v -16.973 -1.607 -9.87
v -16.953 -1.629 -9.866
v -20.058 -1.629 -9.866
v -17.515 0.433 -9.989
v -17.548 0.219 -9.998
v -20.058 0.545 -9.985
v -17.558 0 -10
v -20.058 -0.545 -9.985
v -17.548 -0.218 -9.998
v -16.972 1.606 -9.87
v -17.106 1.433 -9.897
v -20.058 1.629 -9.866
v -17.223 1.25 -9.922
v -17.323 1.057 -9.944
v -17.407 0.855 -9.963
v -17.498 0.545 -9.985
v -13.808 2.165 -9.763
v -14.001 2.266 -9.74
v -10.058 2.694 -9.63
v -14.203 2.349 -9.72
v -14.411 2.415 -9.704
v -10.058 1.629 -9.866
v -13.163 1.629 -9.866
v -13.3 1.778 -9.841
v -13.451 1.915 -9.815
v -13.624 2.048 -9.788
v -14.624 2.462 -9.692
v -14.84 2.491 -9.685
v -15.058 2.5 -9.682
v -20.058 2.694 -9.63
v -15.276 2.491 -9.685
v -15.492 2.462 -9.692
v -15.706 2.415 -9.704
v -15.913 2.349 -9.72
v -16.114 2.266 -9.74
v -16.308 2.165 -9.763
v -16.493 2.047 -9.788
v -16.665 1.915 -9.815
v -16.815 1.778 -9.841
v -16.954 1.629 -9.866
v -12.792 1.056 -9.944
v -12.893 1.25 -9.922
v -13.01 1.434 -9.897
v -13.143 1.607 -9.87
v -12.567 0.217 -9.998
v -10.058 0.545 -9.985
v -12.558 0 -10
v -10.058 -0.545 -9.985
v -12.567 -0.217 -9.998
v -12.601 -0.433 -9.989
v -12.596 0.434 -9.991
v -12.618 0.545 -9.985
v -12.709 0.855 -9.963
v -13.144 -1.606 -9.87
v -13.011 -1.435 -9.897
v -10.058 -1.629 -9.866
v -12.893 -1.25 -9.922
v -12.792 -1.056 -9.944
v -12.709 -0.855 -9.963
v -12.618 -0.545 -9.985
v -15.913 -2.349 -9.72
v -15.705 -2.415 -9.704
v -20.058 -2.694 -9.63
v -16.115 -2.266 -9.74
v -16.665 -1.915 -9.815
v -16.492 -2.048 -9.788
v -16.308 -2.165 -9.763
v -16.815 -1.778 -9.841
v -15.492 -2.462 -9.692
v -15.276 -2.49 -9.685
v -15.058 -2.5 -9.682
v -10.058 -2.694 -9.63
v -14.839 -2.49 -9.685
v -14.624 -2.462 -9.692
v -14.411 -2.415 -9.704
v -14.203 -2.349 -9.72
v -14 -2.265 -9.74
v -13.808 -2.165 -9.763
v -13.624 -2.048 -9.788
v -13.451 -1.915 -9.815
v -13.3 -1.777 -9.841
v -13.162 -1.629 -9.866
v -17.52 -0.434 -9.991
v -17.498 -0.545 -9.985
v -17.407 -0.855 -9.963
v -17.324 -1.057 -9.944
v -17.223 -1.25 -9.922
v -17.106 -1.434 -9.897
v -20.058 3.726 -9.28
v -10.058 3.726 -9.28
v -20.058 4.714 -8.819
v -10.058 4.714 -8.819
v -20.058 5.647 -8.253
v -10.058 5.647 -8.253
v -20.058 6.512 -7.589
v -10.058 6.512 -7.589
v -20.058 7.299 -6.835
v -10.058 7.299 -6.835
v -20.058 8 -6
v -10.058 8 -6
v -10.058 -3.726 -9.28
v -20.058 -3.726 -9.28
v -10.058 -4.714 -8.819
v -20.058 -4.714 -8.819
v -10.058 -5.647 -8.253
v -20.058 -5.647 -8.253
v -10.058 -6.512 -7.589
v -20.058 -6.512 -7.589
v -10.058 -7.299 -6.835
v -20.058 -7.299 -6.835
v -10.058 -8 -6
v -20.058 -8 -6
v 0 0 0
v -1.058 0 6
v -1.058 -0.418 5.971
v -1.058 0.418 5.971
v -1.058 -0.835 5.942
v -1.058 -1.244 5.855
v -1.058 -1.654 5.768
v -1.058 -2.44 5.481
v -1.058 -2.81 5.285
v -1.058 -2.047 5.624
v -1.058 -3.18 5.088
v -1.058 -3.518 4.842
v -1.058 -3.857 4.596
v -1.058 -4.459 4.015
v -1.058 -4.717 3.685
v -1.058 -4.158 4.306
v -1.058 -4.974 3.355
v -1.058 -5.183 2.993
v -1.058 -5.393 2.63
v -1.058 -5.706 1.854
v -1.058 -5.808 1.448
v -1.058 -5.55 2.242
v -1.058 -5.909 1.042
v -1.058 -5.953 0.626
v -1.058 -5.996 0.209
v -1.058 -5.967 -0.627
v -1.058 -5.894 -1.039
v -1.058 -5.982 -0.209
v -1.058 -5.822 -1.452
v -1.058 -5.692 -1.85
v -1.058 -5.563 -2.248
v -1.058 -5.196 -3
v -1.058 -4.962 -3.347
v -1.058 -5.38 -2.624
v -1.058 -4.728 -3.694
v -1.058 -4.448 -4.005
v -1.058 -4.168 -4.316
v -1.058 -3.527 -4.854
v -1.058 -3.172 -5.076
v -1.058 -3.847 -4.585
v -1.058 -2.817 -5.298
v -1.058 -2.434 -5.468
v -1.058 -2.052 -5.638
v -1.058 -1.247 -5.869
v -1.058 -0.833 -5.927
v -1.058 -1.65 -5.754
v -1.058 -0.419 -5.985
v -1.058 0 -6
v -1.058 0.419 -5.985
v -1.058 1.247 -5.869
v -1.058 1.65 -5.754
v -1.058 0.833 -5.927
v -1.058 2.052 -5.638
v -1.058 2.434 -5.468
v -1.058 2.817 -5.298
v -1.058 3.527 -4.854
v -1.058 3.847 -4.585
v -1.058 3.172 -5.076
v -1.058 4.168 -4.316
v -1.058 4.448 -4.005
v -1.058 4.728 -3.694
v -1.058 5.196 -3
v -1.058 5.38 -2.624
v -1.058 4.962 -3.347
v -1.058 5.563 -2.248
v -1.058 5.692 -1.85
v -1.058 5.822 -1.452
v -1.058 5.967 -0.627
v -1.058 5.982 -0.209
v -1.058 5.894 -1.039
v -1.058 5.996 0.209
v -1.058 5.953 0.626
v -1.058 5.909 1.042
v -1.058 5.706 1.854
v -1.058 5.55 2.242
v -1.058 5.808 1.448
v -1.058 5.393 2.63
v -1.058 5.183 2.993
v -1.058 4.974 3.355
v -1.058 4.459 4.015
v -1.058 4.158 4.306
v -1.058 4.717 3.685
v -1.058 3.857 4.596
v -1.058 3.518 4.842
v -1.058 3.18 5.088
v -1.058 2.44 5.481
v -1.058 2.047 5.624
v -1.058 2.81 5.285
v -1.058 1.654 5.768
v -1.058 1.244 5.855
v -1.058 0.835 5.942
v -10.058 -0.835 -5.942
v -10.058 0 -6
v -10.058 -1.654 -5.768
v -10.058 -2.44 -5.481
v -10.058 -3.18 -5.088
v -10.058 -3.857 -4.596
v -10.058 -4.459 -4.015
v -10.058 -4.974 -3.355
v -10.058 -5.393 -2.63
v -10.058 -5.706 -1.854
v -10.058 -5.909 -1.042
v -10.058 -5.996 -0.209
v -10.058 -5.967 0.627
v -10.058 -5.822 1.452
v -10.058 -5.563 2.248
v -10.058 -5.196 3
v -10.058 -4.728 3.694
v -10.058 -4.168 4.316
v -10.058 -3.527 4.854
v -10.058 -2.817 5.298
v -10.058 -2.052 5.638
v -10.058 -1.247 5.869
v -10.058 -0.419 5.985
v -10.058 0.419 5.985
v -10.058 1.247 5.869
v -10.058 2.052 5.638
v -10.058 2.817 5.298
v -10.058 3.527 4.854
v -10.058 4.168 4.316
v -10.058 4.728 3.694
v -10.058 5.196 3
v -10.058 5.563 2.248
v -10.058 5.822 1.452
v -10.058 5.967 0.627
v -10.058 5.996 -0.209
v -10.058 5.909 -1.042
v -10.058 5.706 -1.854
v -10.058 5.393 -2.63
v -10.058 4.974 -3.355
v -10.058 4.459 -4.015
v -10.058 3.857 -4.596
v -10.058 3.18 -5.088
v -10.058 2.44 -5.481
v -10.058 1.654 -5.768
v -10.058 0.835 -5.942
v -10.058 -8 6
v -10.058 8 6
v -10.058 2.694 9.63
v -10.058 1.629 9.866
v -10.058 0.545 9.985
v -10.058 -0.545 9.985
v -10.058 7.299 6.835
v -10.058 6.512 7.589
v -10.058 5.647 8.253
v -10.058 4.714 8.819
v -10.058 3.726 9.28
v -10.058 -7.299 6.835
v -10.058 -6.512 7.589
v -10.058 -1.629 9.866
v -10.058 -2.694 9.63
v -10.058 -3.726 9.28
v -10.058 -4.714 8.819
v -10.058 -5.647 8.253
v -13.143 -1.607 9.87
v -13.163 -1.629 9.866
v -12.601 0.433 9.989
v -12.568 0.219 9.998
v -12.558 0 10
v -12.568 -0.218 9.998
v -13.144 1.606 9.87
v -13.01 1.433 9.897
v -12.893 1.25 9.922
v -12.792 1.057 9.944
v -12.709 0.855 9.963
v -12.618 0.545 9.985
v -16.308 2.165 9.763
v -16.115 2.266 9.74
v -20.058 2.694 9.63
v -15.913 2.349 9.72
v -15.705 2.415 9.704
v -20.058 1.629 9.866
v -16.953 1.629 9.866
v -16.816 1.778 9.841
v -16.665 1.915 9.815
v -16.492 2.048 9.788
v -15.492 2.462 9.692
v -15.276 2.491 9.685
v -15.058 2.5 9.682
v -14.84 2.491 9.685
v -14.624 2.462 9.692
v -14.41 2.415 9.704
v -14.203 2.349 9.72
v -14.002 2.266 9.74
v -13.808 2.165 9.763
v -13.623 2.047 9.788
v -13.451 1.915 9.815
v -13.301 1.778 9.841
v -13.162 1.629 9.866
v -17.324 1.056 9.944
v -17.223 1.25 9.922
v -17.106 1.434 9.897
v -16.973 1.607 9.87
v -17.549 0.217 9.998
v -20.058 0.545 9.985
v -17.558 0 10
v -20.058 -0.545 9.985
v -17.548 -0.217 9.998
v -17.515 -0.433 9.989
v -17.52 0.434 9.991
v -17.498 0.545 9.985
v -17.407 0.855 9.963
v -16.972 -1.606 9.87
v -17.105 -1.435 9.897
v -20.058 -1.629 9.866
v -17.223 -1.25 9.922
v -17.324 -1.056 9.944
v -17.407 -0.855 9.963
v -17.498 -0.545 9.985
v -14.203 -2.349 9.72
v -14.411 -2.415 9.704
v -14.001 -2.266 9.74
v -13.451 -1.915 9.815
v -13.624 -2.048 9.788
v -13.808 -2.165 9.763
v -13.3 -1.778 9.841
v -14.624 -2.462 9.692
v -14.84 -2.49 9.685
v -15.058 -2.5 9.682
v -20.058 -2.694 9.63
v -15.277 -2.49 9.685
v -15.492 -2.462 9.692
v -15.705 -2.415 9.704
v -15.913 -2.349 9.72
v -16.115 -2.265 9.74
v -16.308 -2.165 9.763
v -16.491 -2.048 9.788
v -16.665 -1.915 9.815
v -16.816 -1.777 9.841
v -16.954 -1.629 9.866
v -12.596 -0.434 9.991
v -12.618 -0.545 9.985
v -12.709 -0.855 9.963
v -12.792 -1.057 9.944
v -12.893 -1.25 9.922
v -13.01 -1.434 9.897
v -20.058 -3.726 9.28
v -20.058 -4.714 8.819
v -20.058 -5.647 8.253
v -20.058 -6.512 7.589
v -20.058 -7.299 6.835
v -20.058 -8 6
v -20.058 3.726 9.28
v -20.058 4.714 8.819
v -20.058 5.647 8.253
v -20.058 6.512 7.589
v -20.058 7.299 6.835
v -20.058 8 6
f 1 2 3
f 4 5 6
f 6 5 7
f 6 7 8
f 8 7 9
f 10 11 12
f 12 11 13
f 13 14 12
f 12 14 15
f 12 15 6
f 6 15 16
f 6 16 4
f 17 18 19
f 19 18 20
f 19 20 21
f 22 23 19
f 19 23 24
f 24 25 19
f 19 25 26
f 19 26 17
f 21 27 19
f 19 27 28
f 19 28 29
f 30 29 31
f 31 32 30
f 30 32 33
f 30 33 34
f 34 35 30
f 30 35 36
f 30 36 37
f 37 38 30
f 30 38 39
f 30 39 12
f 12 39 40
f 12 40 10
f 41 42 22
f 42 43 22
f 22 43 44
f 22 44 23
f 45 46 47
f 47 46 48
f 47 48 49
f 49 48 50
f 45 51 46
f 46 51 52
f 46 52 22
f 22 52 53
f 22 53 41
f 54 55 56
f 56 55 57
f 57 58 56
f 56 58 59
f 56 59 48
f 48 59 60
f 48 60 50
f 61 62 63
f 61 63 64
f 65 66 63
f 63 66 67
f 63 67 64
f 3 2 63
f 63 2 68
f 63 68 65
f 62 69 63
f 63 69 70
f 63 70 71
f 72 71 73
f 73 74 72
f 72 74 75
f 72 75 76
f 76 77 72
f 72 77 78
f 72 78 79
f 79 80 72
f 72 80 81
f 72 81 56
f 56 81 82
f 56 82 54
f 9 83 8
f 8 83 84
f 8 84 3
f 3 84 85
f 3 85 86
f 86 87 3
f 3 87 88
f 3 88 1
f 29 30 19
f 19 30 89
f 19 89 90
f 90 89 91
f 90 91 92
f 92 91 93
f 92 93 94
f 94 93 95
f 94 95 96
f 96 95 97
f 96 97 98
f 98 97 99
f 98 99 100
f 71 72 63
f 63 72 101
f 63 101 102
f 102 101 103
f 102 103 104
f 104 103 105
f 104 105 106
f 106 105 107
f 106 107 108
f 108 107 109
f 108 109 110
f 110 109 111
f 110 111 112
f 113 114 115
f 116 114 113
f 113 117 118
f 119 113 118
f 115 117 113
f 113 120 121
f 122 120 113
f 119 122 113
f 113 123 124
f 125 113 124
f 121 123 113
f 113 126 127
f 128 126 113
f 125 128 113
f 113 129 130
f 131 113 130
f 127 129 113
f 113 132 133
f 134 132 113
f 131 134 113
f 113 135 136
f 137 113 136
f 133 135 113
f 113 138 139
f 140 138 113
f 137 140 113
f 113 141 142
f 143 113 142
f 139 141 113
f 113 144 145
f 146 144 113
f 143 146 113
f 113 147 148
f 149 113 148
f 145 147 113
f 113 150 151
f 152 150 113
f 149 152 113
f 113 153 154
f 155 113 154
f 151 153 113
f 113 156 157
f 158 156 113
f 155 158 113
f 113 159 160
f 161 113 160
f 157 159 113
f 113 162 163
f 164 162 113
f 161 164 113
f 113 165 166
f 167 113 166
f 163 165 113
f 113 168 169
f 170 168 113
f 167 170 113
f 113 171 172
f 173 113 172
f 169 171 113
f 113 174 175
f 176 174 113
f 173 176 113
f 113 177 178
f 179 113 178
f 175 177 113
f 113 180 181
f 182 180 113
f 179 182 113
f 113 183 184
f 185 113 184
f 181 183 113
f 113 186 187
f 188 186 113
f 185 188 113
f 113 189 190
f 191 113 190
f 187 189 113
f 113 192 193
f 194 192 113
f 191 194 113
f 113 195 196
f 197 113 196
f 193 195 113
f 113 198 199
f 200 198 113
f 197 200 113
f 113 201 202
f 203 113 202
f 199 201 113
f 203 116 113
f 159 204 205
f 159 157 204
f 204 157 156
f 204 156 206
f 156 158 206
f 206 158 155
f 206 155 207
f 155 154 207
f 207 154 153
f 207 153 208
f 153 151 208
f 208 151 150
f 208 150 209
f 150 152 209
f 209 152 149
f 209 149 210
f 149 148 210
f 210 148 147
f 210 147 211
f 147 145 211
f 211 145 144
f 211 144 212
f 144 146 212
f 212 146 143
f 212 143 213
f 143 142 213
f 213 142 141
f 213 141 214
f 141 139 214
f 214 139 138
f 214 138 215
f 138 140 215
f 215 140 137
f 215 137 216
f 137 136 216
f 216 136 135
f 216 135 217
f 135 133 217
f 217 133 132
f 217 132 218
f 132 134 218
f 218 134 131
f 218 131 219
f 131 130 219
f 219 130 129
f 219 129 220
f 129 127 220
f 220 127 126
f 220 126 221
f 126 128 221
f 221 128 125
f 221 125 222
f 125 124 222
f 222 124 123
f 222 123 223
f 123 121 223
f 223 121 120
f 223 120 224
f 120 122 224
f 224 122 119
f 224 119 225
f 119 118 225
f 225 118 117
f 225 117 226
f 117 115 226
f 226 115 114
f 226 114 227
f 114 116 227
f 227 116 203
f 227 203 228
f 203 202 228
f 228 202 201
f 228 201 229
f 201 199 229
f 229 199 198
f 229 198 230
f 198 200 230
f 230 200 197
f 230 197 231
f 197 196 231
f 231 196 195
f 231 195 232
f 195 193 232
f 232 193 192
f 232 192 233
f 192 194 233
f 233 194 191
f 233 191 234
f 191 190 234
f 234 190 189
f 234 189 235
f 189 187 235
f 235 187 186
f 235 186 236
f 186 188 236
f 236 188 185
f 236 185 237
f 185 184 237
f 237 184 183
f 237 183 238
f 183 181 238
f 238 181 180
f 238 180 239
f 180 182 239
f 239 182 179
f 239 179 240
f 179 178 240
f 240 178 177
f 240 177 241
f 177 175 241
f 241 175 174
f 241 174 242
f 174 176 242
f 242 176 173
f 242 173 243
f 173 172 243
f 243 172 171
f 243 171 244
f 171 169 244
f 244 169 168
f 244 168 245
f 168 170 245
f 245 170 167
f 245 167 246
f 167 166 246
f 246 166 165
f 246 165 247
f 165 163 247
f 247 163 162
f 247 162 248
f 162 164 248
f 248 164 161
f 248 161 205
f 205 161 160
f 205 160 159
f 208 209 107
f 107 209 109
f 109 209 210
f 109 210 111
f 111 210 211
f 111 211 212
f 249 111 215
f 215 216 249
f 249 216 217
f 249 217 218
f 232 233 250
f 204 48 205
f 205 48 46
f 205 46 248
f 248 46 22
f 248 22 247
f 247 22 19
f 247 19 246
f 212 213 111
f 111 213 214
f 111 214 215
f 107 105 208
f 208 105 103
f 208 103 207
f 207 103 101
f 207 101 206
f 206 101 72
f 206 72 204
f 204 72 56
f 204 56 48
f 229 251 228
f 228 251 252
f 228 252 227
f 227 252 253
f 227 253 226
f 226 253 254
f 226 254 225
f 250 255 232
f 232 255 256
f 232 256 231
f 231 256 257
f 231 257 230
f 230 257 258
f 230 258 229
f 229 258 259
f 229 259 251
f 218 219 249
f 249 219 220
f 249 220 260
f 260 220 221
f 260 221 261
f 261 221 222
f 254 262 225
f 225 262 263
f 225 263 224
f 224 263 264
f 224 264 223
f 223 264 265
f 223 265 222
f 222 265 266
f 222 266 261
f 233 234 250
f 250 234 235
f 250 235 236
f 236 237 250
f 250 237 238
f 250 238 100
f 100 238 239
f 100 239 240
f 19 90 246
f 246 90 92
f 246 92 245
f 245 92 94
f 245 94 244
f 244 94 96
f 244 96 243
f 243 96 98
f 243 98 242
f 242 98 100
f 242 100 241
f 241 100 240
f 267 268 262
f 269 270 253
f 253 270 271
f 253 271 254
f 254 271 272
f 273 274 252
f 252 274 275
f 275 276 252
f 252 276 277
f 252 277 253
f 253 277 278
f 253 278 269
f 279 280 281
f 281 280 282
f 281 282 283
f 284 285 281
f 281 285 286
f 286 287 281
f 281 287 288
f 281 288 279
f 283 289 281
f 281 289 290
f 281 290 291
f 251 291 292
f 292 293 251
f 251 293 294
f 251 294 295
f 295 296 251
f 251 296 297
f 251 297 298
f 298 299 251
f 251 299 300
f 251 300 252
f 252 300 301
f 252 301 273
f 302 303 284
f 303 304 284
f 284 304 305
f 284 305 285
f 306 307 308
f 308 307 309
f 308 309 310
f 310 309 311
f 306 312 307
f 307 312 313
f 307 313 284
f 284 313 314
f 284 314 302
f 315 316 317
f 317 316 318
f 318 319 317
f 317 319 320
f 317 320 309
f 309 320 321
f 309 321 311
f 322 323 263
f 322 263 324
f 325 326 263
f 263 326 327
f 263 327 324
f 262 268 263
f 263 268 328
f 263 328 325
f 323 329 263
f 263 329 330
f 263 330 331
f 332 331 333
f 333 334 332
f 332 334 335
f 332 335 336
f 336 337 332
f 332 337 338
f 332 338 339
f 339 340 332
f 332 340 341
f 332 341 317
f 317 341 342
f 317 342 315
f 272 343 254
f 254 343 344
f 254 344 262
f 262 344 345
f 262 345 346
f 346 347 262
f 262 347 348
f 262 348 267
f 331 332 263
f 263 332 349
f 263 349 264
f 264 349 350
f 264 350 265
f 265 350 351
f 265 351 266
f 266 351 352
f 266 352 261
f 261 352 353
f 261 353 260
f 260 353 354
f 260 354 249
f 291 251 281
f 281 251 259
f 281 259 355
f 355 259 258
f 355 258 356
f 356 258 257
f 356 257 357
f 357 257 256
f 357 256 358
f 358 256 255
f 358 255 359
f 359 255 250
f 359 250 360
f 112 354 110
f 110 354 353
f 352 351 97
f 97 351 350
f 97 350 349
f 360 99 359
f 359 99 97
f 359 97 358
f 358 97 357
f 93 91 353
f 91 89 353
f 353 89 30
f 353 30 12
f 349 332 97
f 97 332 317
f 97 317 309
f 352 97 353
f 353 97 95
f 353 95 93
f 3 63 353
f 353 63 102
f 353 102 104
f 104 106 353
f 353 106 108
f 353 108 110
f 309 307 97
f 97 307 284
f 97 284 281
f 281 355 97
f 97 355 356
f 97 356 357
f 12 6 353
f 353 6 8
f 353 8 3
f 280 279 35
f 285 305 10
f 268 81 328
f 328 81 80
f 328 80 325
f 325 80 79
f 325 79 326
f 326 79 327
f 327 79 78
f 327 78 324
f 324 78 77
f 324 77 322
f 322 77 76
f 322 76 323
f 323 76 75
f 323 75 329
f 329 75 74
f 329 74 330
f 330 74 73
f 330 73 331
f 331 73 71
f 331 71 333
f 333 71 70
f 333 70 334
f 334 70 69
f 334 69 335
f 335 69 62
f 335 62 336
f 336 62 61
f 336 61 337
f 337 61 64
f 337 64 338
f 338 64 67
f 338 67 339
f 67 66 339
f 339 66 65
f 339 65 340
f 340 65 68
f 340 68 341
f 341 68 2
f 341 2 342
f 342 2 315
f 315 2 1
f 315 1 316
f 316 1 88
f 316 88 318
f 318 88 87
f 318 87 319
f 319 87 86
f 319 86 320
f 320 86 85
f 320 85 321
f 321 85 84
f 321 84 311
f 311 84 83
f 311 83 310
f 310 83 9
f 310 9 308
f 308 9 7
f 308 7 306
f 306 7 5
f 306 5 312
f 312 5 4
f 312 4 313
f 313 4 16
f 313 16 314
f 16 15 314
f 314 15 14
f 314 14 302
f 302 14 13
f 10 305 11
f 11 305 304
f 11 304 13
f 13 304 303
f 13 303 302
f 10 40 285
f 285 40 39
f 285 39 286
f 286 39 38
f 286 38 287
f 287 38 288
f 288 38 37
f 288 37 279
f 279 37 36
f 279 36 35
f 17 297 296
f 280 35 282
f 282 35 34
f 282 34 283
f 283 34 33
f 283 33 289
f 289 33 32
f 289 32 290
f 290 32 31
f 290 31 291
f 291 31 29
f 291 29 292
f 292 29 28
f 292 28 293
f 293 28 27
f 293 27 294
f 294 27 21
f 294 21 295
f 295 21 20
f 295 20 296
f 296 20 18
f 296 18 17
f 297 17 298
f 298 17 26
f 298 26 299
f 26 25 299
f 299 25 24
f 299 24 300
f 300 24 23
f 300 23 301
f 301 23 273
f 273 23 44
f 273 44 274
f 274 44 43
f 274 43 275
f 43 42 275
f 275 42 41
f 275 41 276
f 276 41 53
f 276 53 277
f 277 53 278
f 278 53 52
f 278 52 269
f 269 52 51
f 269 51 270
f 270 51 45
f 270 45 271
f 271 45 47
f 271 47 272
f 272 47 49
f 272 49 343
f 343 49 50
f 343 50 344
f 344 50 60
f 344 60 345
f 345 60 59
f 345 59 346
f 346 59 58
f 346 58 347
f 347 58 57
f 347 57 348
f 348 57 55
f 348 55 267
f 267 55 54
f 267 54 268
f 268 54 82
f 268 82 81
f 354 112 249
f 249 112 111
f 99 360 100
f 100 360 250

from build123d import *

# Parameters (mm, degrees)
SKETCH_2_R          = 2.5
SKETCH_2_W          = 13.733275584
SKETCH_2_H          = 7.68132945
CUT_EXTRUDE_1_DEPTH = 15


with BuildPart() as part:
    # Эскиз1 → Повернуть1 (revolve)
    with BuildSketch(Plane.XY, mode=Mode.PRIVATE) as revolve_1_sk:
        Polygon((0, 0), (-1.057961884, 6), (-10.057961884, 6), (-10.057961884, 10), (-20.057961884, 10), (-20.057961884, 0), align=None)
    revolve(revolve_1_sk.sketch.rotate(Axis((0, 0, 0), (-1, 0, 0)), 90), axis=Axis((0, 0, 0), (-1, 0, 0)))

    # Эскиз2 → Вырез-Вытянуть1 (cut, symmetric)
    with BuildSketch(Plane.XY):
        with Locations((-15.057961884, 0)):
            Circle(SKETCH_2_R)
        with Locations((-14.936439869, -11.840664725)):
            Rectangle(SKETCH_2_W, SKETCH_2_H)
        with Locations((-14.936439869, 11.840664725)):
            Rectangle(SKETCH_2_W, SKETCH_2_H)
    extrude(amount=CUT_EXTRUDE_1_DEPTH, both=True, mode=Mode.SUBTRACT)


solid = part.part
